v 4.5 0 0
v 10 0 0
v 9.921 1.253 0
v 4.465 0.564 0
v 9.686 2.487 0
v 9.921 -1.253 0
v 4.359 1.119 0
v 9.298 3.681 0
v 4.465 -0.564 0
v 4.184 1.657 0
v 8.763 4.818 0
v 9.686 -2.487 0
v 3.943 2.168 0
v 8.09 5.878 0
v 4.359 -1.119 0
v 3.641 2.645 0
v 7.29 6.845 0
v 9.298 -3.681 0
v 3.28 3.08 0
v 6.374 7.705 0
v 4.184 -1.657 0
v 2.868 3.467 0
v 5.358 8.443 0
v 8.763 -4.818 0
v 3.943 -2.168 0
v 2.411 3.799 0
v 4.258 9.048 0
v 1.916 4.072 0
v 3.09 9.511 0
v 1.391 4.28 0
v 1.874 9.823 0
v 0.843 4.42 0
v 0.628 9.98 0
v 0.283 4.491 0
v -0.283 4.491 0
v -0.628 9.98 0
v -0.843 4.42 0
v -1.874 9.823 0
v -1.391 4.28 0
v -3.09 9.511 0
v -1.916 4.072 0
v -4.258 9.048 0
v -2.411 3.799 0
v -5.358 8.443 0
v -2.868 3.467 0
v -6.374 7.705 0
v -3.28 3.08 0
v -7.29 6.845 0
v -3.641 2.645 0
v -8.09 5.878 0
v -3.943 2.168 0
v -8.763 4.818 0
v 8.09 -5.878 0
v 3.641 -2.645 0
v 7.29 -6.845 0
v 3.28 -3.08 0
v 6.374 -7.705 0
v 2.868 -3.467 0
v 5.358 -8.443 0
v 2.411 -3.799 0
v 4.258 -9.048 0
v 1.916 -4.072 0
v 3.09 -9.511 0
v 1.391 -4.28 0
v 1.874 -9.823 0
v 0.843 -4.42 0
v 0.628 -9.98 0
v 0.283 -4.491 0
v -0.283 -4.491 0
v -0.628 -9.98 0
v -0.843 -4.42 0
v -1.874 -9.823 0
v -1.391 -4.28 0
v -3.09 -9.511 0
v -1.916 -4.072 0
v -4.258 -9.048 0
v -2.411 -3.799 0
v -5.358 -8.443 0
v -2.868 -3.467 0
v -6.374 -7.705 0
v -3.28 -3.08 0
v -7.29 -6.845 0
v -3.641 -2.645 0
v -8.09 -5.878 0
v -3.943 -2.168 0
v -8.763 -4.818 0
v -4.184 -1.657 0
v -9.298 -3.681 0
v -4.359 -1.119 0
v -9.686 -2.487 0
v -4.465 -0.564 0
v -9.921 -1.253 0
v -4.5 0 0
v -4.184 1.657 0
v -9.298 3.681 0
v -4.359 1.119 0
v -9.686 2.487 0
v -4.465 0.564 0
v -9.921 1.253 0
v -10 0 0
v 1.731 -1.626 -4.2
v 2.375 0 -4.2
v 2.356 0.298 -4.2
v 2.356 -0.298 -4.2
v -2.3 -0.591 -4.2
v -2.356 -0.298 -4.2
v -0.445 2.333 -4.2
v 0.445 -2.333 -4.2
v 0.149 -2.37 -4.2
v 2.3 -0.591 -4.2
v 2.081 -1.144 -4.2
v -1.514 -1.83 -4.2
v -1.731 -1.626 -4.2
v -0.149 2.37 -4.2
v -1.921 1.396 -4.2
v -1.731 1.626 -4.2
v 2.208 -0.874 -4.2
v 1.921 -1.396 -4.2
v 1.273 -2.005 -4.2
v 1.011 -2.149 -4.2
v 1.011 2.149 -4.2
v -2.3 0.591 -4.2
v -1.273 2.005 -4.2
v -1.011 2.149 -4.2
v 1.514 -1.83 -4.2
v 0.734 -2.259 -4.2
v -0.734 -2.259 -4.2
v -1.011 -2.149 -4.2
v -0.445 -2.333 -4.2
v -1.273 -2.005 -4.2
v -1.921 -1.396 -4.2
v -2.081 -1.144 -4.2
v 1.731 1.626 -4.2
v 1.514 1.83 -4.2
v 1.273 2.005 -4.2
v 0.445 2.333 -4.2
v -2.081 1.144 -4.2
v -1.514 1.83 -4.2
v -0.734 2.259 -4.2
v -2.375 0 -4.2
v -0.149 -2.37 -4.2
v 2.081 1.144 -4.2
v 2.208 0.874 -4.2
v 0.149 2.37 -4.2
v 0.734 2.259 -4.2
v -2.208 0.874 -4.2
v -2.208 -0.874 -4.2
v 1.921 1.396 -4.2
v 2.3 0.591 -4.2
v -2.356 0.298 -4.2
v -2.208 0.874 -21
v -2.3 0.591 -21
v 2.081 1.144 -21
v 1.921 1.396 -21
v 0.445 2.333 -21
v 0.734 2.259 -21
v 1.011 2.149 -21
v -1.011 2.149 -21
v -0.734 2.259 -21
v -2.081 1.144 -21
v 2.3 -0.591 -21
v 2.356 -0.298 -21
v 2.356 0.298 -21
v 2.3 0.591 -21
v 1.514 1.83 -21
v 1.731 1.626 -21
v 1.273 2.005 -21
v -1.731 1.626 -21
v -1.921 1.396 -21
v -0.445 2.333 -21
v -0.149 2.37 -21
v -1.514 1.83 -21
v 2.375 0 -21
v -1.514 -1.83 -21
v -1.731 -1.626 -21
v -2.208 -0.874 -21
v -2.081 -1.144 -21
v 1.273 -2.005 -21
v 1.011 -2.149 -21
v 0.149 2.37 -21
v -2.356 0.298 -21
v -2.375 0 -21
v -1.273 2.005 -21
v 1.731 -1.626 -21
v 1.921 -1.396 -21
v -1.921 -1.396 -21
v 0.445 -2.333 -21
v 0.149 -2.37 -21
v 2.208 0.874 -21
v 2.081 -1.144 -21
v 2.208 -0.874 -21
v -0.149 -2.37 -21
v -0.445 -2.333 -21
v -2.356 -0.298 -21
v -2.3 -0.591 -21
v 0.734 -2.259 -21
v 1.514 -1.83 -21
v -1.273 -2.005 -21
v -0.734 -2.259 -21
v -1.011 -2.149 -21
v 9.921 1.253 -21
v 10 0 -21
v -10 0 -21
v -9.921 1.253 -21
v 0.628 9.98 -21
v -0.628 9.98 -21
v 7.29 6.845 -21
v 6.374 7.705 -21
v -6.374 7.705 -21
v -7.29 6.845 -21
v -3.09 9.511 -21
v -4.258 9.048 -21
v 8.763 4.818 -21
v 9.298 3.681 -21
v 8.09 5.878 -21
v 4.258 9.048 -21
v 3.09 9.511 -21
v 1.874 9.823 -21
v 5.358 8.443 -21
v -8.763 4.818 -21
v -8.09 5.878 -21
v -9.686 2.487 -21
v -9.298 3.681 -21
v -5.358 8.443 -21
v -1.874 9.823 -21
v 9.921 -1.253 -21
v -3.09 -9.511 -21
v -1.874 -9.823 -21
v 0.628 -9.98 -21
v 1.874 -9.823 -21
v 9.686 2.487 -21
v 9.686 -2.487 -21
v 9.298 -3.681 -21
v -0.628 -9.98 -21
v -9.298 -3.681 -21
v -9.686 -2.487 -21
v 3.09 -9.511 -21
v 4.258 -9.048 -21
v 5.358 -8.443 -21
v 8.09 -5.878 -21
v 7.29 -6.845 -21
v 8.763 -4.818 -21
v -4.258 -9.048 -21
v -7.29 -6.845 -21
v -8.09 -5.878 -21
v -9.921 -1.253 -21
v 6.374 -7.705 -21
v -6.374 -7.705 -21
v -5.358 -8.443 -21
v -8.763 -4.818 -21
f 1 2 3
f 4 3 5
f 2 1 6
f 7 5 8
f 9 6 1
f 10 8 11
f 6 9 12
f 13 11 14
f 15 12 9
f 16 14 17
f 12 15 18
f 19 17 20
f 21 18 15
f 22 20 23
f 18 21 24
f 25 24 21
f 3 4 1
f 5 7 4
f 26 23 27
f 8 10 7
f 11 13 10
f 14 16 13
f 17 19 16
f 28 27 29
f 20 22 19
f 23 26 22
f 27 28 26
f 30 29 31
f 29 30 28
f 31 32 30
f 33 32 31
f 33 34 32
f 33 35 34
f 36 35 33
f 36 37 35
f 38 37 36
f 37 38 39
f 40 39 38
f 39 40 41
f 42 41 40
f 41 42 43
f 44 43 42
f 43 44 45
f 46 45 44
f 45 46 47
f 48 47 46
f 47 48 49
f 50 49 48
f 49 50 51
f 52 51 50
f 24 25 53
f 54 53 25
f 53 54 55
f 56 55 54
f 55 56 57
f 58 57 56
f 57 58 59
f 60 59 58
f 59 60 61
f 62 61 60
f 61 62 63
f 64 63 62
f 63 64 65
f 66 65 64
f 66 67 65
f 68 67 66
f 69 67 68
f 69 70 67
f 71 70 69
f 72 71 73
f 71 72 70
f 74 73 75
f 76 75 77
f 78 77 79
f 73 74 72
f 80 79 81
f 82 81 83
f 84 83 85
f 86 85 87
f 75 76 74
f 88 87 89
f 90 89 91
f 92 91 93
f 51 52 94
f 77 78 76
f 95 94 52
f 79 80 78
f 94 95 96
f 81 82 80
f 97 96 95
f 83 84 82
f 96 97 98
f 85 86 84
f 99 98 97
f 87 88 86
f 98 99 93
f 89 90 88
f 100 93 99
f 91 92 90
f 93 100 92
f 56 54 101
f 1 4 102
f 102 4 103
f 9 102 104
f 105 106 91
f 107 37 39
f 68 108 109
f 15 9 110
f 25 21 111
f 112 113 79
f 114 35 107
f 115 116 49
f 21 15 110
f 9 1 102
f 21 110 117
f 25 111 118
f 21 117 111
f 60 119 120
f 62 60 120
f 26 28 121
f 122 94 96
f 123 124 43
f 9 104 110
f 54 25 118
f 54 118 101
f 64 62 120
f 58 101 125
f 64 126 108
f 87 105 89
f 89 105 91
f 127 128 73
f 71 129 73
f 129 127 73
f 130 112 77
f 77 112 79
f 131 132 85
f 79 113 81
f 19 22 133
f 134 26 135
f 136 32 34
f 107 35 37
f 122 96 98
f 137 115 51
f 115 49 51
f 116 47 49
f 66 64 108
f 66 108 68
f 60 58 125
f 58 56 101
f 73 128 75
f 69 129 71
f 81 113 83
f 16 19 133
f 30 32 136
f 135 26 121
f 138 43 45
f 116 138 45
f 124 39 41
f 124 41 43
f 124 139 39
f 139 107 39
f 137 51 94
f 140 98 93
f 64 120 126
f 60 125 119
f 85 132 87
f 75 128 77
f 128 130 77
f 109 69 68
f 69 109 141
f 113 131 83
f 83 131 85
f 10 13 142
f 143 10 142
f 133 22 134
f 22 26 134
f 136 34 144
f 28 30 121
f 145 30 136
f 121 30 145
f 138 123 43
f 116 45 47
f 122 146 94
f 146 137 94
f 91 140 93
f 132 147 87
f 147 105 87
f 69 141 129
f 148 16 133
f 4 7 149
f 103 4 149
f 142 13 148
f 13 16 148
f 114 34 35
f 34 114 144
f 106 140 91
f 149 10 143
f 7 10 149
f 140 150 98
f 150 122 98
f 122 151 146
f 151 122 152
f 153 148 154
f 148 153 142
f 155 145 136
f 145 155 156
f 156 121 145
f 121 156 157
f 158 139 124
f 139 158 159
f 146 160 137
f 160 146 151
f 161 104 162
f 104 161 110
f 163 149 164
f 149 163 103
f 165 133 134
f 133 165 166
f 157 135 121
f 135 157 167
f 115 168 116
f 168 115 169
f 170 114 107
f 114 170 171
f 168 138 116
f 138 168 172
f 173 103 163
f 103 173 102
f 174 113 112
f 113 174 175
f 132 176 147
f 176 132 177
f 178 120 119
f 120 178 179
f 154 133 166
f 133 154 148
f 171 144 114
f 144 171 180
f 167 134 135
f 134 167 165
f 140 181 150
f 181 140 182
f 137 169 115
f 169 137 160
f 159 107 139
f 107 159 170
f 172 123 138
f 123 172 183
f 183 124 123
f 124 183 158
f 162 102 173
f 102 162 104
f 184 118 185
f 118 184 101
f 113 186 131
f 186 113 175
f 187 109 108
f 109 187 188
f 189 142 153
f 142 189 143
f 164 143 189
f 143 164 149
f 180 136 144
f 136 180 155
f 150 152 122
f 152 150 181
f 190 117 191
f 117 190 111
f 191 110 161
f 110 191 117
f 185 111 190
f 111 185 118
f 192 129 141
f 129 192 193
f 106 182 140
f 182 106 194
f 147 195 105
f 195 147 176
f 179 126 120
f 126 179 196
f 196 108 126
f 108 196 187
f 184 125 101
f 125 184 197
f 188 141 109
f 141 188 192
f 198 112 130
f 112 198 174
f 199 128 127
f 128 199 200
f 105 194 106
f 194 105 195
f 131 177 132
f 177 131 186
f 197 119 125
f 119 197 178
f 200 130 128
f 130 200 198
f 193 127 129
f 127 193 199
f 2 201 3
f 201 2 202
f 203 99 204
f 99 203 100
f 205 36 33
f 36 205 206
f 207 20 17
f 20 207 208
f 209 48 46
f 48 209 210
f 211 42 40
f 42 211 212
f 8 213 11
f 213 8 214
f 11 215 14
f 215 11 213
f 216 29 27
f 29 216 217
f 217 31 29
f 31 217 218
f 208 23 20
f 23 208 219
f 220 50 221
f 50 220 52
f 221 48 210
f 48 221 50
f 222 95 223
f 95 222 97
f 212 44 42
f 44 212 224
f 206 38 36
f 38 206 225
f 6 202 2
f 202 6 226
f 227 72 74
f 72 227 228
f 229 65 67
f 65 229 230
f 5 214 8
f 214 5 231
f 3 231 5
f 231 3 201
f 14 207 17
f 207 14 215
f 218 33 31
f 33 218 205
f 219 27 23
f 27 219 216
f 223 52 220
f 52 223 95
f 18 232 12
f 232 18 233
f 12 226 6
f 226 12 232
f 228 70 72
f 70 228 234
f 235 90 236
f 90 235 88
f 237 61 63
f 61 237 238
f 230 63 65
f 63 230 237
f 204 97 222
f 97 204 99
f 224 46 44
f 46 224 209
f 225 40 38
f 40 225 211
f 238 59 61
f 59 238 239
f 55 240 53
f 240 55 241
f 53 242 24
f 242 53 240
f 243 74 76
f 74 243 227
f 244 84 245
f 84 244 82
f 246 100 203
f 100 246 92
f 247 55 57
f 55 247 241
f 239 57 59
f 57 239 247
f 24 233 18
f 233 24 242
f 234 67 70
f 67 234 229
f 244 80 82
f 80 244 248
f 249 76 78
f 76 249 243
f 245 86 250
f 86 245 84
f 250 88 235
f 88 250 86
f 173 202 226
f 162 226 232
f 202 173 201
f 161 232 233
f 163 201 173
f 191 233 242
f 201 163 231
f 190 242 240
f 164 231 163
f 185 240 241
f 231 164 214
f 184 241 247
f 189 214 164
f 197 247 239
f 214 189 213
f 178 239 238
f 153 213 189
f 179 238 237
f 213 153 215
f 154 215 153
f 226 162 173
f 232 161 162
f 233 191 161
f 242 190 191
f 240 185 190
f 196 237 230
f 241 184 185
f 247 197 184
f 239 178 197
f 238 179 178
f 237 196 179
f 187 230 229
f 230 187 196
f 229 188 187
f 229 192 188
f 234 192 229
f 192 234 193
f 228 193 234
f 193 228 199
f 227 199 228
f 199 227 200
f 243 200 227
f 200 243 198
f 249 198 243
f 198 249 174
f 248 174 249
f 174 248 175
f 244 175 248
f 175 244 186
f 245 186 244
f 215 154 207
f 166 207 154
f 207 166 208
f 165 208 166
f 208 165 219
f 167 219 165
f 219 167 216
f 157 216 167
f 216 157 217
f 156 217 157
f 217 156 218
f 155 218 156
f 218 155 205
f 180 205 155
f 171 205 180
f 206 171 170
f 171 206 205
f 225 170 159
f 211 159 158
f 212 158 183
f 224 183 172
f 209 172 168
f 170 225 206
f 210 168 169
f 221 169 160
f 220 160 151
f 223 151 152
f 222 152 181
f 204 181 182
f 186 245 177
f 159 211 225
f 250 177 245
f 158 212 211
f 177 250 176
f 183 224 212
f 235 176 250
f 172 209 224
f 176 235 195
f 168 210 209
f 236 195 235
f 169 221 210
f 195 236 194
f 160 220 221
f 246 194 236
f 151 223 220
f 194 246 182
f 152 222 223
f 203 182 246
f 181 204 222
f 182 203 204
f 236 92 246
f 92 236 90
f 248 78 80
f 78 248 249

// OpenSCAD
$fn = 50;


difference() {
	union() {
		translate(v = [0, 0, -21.0000000000]) {
			cylinder(h = 21, r = 10.0000000000);
		}
	}
	union() {
		translate(v = [0, 0, 0]) {
			rotate(a = [0, 0, 0]) {
				difference() {
					union() {
						translate(v = [0, 0, -24.0000000000]) {
							cylinder(h = 24, r = 2.2500000000);
						}
						translate(v = [0, 0, -4.2000000000]) {
							cylinder(h = 4.2000000000, r1 = 2.3750000000, r2 = 4.5000000000);
						}
						translate(v = [0, 0, -24.0000000000]) {
							cylinder(h = 24, r = 2.3750000000);
						}
						translate(v = [0, 0, -24.0000000000]) {
							cylinder(h = 24, r = 2.2500000000);
						}
					}
					union();
				}
			}
		}
	}
}
